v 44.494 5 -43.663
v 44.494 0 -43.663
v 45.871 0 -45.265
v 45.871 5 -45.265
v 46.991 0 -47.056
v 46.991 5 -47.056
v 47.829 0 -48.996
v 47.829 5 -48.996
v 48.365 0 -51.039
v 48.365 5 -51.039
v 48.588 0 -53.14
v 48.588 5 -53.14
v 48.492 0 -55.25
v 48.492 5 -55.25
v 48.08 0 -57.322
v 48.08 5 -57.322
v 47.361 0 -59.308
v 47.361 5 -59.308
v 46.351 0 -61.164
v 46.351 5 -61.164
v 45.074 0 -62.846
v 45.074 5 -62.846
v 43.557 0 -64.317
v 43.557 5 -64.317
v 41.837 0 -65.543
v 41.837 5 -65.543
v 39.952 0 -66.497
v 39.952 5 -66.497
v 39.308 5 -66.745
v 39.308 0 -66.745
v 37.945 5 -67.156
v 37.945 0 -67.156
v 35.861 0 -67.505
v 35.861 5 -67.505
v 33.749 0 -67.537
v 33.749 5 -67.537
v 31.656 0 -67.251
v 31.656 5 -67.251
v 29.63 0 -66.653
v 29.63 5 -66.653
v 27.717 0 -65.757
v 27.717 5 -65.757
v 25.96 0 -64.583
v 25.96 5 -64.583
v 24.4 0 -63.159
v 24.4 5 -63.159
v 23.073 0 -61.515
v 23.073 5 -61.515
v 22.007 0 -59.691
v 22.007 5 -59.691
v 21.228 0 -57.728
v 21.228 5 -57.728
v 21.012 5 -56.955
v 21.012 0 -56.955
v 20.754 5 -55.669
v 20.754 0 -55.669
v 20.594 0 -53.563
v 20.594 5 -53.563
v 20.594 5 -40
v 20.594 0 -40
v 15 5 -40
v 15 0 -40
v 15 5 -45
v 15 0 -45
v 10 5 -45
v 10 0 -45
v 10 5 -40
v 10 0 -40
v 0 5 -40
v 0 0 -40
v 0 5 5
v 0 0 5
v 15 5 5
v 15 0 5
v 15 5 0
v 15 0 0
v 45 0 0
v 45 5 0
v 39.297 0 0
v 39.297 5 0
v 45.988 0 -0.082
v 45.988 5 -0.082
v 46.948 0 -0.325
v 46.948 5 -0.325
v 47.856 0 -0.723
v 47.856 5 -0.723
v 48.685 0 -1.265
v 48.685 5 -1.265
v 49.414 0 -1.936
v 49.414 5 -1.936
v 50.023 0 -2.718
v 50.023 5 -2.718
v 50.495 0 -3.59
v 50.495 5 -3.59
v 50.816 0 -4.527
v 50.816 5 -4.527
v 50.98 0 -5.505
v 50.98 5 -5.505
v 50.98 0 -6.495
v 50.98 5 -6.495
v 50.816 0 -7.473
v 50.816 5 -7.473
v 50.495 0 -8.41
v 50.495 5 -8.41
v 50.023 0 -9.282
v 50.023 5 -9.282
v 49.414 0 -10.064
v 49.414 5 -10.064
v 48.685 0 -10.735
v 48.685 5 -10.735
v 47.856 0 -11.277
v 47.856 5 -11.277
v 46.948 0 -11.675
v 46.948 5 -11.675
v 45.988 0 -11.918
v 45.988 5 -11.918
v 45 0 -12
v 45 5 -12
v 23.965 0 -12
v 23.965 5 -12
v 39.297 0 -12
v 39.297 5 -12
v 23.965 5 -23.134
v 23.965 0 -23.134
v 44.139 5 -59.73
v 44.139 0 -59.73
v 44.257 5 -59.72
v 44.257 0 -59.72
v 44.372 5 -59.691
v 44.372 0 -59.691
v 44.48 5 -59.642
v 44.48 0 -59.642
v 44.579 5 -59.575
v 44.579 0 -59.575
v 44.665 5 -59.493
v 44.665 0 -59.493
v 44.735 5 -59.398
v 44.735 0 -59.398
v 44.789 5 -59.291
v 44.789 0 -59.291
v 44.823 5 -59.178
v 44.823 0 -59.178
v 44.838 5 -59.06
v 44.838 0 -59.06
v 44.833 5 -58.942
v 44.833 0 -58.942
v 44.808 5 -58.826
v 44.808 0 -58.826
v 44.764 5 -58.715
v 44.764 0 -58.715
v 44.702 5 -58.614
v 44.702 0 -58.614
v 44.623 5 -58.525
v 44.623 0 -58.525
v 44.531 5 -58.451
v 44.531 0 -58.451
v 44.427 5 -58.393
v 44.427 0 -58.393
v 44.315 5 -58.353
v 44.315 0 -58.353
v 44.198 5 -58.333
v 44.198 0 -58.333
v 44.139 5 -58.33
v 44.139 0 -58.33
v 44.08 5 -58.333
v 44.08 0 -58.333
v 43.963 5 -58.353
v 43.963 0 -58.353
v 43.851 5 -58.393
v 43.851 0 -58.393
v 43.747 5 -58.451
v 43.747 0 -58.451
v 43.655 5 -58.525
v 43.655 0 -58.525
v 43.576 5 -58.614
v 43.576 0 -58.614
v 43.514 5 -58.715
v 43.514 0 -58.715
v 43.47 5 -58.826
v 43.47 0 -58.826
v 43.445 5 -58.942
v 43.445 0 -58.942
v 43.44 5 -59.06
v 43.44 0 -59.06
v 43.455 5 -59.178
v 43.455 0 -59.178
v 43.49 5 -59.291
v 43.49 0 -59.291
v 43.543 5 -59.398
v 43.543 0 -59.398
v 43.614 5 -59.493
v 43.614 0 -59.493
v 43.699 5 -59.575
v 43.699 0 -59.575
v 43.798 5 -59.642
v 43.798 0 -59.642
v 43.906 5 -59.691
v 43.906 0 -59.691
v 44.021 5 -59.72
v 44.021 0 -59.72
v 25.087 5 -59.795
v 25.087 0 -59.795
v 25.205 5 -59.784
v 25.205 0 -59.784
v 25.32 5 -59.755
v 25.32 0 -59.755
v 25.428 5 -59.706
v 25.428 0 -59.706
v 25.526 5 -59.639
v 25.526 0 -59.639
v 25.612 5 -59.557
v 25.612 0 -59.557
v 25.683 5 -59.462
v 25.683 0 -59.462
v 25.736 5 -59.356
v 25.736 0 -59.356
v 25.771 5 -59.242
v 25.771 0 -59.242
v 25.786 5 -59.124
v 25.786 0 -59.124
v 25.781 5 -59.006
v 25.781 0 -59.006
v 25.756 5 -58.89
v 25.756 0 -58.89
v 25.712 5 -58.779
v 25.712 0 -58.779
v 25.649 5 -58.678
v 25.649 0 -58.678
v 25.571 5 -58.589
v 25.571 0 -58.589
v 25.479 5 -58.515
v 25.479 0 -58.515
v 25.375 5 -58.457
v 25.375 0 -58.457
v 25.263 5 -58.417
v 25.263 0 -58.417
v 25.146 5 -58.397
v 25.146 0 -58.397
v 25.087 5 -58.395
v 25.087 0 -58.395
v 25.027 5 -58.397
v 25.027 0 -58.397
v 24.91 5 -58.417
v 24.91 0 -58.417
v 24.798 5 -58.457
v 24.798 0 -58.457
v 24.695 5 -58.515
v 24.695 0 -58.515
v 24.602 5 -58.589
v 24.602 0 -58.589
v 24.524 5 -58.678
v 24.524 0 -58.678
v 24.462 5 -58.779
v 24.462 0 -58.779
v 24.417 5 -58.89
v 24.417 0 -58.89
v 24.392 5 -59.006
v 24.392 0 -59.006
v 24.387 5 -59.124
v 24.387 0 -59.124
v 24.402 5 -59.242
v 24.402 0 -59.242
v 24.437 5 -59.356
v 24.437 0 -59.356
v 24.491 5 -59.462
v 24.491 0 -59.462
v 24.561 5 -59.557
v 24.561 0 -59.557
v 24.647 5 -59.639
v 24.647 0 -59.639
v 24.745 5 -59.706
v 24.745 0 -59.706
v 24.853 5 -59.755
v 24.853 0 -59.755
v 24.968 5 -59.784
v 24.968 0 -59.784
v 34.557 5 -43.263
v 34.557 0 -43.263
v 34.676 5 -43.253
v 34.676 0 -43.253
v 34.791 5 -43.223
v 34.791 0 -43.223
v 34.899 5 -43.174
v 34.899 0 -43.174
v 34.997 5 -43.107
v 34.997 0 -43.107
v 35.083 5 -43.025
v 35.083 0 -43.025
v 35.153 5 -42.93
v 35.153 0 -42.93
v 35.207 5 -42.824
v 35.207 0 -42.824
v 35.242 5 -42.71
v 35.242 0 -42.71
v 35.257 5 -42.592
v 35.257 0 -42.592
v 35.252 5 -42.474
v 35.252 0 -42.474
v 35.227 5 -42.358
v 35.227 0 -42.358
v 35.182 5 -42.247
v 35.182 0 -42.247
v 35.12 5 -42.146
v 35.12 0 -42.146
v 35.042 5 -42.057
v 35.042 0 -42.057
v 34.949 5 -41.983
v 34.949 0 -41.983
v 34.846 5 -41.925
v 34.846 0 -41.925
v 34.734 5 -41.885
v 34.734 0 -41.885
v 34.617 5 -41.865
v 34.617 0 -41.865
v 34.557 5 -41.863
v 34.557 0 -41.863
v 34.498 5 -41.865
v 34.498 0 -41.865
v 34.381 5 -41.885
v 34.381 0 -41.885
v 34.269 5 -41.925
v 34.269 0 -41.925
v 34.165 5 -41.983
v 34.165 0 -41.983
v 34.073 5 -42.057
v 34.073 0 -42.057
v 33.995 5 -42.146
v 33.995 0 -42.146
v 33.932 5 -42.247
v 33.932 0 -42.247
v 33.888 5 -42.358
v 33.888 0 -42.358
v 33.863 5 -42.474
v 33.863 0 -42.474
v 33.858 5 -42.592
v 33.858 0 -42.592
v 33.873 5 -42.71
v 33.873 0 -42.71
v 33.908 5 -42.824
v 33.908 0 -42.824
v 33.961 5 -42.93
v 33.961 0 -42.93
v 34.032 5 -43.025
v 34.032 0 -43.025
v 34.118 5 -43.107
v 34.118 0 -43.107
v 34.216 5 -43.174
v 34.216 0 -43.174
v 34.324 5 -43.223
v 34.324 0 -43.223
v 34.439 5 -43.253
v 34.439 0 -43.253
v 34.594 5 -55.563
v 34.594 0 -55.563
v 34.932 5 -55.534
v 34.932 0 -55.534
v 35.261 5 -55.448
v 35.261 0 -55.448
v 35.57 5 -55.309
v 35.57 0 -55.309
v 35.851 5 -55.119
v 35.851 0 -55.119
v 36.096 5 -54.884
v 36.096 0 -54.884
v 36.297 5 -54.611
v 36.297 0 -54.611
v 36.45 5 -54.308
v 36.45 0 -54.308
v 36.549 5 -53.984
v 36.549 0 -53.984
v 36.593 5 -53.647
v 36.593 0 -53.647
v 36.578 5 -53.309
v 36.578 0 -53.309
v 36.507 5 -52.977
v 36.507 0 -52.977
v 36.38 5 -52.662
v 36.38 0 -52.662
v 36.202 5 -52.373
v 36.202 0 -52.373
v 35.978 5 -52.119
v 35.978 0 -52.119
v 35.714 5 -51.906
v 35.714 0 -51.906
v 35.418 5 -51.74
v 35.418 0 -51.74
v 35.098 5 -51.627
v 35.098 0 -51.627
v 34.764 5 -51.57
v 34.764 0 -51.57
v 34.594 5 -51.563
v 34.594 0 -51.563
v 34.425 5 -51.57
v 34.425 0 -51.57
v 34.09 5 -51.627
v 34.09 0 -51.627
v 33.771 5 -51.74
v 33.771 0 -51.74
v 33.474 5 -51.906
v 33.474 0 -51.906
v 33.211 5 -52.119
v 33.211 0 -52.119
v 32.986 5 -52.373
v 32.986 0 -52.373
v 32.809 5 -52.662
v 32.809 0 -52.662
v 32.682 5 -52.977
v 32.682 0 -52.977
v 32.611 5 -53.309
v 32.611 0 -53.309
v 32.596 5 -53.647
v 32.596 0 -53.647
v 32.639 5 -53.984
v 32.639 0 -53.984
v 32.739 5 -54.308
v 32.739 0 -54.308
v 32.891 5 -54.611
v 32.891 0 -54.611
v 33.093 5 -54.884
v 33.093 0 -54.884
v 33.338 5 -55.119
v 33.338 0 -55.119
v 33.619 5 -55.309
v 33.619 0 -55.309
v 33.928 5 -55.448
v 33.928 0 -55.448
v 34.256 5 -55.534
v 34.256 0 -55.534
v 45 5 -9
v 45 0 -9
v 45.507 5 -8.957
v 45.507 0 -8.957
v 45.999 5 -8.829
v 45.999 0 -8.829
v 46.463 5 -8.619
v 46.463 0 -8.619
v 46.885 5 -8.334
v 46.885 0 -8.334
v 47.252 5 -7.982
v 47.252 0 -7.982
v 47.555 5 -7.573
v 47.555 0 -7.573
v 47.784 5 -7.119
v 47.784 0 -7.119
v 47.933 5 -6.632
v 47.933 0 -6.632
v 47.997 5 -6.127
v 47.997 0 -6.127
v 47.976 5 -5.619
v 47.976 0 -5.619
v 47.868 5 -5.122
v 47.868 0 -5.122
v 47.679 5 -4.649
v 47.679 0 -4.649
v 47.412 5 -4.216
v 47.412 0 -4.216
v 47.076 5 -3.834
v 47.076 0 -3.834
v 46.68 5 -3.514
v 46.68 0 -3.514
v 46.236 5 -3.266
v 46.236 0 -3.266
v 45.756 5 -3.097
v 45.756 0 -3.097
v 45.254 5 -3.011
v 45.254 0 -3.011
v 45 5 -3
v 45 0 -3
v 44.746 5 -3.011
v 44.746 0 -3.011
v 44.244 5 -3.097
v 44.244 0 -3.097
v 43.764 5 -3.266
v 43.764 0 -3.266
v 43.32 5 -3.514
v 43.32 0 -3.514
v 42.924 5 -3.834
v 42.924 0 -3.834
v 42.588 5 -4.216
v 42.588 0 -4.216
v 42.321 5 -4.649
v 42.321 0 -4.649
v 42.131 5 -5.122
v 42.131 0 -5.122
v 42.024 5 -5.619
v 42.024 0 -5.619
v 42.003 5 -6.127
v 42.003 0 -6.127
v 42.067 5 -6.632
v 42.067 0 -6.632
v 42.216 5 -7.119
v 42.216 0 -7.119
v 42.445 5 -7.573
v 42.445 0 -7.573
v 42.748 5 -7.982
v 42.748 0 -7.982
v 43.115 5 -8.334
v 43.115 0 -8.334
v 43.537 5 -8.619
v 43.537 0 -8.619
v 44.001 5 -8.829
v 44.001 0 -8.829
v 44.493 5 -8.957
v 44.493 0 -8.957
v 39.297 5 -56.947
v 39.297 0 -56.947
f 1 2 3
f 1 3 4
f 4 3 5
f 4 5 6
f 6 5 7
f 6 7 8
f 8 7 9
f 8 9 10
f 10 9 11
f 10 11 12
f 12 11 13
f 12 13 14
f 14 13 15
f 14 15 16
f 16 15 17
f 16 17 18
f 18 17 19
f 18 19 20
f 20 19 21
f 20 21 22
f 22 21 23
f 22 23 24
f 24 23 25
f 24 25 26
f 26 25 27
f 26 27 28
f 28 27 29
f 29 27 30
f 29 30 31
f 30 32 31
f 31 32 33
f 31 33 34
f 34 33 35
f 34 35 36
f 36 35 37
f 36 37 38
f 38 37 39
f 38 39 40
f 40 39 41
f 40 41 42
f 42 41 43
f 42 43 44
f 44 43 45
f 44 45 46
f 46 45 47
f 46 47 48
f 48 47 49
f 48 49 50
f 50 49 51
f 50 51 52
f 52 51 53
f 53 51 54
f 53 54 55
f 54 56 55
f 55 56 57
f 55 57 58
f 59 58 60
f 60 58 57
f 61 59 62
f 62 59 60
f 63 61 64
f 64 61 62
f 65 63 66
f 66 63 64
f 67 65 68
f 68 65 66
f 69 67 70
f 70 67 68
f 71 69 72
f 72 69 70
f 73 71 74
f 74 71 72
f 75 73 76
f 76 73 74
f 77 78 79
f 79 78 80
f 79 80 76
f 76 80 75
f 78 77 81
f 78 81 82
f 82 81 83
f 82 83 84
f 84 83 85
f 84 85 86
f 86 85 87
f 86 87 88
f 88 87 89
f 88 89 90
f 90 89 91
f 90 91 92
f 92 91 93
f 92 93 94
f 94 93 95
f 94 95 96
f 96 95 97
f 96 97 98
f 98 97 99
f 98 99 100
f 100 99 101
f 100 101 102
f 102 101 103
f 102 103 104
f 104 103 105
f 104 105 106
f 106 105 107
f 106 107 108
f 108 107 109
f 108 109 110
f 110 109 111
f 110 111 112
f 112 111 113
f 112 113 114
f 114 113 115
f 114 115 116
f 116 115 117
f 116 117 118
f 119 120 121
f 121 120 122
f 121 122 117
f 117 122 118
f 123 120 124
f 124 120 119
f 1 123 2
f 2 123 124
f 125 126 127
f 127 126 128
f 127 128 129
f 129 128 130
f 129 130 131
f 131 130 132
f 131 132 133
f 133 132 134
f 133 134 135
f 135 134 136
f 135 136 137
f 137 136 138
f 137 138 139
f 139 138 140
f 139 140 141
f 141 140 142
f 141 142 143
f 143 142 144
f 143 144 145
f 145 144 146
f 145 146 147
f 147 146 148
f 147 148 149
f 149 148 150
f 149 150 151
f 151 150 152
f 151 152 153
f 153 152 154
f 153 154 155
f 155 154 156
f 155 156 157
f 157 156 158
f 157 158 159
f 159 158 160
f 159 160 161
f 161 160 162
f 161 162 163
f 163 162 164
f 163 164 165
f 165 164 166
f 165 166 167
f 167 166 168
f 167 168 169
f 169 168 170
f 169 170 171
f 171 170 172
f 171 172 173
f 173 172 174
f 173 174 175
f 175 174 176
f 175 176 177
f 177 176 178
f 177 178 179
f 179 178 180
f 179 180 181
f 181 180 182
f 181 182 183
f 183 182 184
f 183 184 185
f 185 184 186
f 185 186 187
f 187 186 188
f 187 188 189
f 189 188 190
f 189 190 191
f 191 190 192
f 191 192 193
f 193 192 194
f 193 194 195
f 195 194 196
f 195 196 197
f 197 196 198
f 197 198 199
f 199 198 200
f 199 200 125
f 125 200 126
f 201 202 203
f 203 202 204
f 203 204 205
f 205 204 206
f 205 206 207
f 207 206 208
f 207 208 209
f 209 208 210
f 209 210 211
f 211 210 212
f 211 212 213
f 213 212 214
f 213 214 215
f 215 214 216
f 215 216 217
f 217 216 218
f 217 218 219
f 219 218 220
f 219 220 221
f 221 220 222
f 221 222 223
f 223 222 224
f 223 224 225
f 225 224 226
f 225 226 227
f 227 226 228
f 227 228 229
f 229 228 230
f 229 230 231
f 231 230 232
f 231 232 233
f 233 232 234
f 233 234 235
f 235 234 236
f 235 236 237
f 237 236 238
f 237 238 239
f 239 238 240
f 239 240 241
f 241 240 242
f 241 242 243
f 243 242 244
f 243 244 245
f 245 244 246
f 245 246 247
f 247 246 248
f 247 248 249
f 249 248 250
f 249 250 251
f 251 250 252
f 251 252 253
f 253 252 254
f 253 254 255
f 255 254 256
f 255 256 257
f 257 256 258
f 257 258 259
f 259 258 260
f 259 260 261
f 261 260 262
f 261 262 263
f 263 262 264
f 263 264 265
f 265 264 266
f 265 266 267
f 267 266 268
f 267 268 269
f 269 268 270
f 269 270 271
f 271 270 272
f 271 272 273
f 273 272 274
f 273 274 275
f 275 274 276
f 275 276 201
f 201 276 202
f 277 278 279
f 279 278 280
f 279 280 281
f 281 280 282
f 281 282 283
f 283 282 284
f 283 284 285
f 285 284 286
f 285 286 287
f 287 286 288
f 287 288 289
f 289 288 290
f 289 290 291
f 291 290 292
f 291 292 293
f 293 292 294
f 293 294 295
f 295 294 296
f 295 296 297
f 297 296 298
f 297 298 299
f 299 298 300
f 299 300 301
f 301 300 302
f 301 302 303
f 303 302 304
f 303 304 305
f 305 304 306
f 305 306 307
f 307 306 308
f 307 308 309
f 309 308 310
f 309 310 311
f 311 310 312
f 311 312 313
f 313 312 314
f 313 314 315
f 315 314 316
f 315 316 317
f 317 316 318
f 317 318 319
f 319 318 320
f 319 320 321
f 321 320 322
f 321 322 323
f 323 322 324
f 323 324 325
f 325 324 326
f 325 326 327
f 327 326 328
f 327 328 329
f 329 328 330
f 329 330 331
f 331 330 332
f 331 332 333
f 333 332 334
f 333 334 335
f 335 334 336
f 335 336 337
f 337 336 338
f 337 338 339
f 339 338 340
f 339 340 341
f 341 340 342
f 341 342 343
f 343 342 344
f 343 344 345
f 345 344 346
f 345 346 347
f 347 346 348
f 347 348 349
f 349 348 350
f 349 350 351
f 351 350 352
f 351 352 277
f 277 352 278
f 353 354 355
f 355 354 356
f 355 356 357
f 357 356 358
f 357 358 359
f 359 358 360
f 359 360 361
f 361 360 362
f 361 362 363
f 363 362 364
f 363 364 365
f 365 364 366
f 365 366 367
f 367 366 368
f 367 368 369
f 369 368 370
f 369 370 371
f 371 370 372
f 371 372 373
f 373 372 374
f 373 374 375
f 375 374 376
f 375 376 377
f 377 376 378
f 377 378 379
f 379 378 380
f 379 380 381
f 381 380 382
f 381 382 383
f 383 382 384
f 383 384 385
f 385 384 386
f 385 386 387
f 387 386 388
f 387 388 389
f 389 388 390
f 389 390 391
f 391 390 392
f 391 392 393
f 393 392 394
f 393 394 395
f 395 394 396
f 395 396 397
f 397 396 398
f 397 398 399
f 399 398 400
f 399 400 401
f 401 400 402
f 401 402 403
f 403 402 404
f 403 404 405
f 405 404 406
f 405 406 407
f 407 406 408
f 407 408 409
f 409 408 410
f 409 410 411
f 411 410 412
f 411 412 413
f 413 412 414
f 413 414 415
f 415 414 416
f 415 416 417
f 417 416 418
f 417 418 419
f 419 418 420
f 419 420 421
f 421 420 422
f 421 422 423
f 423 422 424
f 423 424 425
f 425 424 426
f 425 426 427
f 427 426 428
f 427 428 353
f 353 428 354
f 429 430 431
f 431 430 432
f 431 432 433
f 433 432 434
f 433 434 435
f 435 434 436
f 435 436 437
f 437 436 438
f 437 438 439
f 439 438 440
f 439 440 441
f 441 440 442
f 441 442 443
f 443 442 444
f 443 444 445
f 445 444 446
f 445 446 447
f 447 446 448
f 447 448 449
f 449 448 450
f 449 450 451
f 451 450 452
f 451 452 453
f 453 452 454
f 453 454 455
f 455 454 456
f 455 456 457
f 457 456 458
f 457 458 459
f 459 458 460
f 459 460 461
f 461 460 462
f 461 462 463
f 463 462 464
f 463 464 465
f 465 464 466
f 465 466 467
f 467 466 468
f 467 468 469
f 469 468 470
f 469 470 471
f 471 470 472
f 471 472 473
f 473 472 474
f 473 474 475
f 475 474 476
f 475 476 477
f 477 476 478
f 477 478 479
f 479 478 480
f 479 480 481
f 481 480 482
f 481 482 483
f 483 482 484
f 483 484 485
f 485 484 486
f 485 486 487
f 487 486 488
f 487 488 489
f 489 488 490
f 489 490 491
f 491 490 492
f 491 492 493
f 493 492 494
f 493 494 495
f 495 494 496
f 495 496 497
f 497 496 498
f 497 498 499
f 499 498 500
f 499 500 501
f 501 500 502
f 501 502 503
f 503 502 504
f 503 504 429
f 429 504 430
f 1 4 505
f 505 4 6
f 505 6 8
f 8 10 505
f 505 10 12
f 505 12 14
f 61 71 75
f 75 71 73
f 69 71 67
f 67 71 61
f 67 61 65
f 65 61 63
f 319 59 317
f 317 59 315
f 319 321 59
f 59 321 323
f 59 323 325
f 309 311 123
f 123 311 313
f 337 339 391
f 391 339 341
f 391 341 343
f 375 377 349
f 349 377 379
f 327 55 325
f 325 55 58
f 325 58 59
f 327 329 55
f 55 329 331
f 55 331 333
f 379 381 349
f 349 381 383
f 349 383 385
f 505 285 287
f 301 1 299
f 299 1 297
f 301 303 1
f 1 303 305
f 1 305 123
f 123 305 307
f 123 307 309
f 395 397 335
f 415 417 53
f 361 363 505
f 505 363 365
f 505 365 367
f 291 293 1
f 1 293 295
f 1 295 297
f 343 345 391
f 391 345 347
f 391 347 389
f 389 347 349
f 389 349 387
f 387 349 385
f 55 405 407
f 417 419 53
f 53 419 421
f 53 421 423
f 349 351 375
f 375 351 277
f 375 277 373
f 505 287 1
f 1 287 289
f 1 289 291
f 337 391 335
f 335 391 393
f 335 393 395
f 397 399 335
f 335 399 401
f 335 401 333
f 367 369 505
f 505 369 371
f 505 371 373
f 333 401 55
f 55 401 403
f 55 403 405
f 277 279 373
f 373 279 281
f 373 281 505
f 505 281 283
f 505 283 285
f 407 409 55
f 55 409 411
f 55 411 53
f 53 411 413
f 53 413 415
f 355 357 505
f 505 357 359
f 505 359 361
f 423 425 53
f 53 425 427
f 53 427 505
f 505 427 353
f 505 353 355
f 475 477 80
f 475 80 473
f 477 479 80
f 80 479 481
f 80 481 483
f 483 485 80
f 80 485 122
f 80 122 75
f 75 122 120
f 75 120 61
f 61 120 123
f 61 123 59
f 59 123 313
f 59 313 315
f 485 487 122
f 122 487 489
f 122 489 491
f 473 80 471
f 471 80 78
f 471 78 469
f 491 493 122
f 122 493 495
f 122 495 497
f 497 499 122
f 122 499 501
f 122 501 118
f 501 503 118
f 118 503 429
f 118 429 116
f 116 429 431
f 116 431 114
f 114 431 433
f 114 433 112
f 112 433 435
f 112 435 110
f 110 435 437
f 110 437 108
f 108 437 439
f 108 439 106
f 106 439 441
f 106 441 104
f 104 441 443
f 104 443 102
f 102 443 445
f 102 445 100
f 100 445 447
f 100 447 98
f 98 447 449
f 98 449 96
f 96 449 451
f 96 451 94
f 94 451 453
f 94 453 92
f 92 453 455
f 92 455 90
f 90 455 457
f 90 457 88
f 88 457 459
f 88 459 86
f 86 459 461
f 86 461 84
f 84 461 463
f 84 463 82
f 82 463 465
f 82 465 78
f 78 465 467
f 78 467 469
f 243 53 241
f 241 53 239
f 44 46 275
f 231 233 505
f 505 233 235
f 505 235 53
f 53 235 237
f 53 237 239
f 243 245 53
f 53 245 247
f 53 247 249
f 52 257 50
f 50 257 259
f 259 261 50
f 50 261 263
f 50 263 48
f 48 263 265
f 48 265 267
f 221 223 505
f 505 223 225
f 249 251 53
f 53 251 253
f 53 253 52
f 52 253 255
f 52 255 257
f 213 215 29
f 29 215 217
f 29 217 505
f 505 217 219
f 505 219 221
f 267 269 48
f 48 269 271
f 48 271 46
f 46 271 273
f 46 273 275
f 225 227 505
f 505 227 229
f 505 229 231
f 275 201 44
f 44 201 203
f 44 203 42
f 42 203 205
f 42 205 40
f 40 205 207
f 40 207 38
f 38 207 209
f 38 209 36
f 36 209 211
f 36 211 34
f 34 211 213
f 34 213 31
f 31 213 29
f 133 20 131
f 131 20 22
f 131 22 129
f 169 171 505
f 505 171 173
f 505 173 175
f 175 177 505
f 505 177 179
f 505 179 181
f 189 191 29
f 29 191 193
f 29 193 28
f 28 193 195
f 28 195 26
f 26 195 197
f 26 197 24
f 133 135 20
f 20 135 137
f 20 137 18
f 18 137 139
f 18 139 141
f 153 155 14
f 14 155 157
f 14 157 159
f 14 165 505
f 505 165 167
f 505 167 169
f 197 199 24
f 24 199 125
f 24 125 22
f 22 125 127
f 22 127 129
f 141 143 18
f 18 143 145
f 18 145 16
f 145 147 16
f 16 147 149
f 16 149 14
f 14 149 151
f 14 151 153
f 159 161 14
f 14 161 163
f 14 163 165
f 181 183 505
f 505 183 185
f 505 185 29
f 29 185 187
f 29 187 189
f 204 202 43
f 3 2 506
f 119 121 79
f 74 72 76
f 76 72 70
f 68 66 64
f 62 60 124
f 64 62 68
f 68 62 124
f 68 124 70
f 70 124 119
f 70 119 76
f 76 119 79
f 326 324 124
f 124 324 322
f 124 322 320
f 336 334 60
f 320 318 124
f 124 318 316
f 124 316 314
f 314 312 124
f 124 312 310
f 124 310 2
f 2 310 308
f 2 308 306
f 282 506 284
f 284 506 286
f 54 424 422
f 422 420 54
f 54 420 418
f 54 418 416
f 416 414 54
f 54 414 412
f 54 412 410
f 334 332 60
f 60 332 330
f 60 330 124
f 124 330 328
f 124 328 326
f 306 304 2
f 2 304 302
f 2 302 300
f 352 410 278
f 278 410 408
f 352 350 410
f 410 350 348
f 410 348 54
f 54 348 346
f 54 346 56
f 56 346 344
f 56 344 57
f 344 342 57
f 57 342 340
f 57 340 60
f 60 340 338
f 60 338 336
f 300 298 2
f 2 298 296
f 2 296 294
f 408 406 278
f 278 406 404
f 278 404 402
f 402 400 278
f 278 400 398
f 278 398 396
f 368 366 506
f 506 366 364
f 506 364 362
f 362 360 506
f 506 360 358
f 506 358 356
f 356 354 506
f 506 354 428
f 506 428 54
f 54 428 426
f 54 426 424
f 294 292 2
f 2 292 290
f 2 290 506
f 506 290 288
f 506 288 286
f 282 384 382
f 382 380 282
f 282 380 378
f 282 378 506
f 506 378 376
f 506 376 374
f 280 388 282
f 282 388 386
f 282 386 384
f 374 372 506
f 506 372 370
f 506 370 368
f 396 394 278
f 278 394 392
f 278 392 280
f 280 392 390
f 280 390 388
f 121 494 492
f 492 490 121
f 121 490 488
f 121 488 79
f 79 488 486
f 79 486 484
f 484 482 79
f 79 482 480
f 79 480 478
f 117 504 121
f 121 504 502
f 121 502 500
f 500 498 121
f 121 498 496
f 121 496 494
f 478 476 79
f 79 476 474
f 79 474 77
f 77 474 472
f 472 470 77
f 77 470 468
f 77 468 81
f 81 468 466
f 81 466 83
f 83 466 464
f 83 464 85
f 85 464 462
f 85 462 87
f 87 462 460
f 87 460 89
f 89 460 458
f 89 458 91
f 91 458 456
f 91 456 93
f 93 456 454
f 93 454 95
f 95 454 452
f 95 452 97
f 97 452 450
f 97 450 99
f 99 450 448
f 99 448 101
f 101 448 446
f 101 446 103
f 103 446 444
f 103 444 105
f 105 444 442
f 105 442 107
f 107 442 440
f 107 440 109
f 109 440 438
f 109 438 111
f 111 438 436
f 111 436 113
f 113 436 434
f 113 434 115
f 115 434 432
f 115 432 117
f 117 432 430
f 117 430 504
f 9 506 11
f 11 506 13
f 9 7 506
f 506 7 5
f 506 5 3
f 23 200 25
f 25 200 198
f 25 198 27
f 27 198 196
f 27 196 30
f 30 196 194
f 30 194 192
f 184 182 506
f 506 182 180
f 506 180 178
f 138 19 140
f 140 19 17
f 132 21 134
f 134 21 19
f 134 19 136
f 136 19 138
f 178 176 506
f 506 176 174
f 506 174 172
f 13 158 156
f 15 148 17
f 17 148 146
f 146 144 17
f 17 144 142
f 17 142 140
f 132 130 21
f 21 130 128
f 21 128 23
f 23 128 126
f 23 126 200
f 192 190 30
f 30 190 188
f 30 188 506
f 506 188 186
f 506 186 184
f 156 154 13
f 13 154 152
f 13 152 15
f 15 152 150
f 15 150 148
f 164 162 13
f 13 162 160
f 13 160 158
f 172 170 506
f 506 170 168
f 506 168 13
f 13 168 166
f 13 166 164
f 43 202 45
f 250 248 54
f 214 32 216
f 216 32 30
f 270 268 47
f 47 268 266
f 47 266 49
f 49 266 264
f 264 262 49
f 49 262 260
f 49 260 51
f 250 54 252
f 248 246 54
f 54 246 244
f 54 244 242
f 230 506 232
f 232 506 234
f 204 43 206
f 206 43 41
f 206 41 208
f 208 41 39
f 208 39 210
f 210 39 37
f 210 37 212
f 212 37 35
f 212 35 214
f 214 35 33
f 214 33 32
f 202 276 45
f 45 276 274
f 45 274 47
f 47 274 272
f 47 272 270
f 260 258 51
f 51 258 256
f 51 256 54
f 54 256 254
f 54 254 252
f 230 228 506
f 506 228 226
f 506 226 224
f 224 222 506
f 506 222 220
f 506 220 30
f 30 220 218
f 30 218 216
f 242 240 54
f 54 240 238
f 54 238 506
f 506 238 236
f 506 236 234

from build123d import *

# Parameters (mm, degrees)
SKETCH2_R           = 14
SKETCH2_R_2         = 2
SKETCH2_R_3         = 0.7
SKETCH2_W           = 5
SKETCH2_H           = 5
SKETCH2_R_4         = 3
SKETCH2_W_2         = 15
BOSS_EXTRUDE2_DEPTH = 5


with BuildPart() as part:
    # Sketch2 → Boss-Extrude2 (new body)
    # profile 1 of 6: a face of its own
    with BuildSketch(Plane(origin=(0, 0, 0), x_dir=(1, 0, 0), z_dir=(0, 1, 0))):
        with Locations((34.59438676, 53.562546918)):
            Circle(SKETCH2_R)
        with Locations(Location((34.59438676, 53.562546918, 0), (0, 0, 270))):
            Circle(SKETCH2_R_2, mode=Mode.SUBTRACT)
        with Locations(Location((34.557412927, 42.562609058, 0), (0, 0, 270))):
            Circle(SKETCH2_R_3, mode=Mode.SUBTRACT)
        with Locations(Location((25.086648049, 59.094536127, 0), (0, 0, 270))):
            Circle(SKETCH2_R_3, mode=Mode.SUBTRACT)
        with Locations(Location((44.139099303, 59.03049557, 0), (0, 0, 270))):
            Circle(SKETCH2_R_3, mode=Mode.SUBTRACT)
    # profile 2 of 6: a face of its own
    with BuildSketch(Plane(origin=(0, 0, 0), x_dir=(1, 0, 0), z_dir=(0, 1, 0))):
        with BuildLine():
            ThreePointArc((44.493881696, 43.663051982), (29.236818707, 40.628233463), (20.59438676, 53.562546918))
            Line((20.59438676, 53.562546918), (20.59438676, 40))
            Line((20.59438676, 40), (23.964739417, 40))
            Line((23.964739417, 40), (23.964739417, 23.133909702))
            Line((23.964739417, 23.133909702), (27.177730802, 26.346901087))
            Line((27.177730802, 26.346901087), (44.493881696, 43.663051982))
        make_face()
    # profile 3 of 6: a face of its own
    with BuildSketch(Plane(origin=(0, 0, 0), x_dir=(1, 0, 0), z_dir=(0, 1, 0))):
        Polygon((23.964739417, 40), (20.59438676, 40), (15, 40), (10, 40), (0, 40), (0, 0), (15, 0), (23.964739417, 0), (23.964739417, 12), (23.964739417, 23.133909702), align=None)
    # profile 4 of 6: a face of its own
    with BuildSketch(Plane(origin=(0, 0, 0), x_dir=(1, 0, 0), z_dir=(0, 1, 0))):
        with Locations((12.5, 42.5)):
            Rectangle(SKETCH2_W, SKETCH2_H)
    # profile 5 of 6: a face of its own
    with BuildSketch(Plane(origin=(0, 0, 0), x_dir=(1, 0, 0), z_dir=(0, 1, 0))):
        with BuildLine():
            Line((45, 12), (23.964739417, 12))
            Line((23.964739417, 12), (23.964739417, 0))
            Line((23.964739417, 0), (45, 0))
            ThreePointArc((45, 0), (51, 6), (45, 12))
        make_face()
        with Locations(Location((45, 6, 0), (0, 0, 270))):
            Circle(SKETCH2_R_4, mode=Mode.SUBTRACT)
    # profile 6 of 6: a face of its own
    with BuildSketch(Plane(origin=(0, 0, 0), x_dir=(1, 0, 0), z_dir=(0, 1, 0))):
        with Locations((7.5, -2.5)):
            Rectangle(SKETCH2_W_2, SKETCH2_H)
    extrude(amount=BOSS_EXTRUDE2_DEPTH)


solid = part.part
